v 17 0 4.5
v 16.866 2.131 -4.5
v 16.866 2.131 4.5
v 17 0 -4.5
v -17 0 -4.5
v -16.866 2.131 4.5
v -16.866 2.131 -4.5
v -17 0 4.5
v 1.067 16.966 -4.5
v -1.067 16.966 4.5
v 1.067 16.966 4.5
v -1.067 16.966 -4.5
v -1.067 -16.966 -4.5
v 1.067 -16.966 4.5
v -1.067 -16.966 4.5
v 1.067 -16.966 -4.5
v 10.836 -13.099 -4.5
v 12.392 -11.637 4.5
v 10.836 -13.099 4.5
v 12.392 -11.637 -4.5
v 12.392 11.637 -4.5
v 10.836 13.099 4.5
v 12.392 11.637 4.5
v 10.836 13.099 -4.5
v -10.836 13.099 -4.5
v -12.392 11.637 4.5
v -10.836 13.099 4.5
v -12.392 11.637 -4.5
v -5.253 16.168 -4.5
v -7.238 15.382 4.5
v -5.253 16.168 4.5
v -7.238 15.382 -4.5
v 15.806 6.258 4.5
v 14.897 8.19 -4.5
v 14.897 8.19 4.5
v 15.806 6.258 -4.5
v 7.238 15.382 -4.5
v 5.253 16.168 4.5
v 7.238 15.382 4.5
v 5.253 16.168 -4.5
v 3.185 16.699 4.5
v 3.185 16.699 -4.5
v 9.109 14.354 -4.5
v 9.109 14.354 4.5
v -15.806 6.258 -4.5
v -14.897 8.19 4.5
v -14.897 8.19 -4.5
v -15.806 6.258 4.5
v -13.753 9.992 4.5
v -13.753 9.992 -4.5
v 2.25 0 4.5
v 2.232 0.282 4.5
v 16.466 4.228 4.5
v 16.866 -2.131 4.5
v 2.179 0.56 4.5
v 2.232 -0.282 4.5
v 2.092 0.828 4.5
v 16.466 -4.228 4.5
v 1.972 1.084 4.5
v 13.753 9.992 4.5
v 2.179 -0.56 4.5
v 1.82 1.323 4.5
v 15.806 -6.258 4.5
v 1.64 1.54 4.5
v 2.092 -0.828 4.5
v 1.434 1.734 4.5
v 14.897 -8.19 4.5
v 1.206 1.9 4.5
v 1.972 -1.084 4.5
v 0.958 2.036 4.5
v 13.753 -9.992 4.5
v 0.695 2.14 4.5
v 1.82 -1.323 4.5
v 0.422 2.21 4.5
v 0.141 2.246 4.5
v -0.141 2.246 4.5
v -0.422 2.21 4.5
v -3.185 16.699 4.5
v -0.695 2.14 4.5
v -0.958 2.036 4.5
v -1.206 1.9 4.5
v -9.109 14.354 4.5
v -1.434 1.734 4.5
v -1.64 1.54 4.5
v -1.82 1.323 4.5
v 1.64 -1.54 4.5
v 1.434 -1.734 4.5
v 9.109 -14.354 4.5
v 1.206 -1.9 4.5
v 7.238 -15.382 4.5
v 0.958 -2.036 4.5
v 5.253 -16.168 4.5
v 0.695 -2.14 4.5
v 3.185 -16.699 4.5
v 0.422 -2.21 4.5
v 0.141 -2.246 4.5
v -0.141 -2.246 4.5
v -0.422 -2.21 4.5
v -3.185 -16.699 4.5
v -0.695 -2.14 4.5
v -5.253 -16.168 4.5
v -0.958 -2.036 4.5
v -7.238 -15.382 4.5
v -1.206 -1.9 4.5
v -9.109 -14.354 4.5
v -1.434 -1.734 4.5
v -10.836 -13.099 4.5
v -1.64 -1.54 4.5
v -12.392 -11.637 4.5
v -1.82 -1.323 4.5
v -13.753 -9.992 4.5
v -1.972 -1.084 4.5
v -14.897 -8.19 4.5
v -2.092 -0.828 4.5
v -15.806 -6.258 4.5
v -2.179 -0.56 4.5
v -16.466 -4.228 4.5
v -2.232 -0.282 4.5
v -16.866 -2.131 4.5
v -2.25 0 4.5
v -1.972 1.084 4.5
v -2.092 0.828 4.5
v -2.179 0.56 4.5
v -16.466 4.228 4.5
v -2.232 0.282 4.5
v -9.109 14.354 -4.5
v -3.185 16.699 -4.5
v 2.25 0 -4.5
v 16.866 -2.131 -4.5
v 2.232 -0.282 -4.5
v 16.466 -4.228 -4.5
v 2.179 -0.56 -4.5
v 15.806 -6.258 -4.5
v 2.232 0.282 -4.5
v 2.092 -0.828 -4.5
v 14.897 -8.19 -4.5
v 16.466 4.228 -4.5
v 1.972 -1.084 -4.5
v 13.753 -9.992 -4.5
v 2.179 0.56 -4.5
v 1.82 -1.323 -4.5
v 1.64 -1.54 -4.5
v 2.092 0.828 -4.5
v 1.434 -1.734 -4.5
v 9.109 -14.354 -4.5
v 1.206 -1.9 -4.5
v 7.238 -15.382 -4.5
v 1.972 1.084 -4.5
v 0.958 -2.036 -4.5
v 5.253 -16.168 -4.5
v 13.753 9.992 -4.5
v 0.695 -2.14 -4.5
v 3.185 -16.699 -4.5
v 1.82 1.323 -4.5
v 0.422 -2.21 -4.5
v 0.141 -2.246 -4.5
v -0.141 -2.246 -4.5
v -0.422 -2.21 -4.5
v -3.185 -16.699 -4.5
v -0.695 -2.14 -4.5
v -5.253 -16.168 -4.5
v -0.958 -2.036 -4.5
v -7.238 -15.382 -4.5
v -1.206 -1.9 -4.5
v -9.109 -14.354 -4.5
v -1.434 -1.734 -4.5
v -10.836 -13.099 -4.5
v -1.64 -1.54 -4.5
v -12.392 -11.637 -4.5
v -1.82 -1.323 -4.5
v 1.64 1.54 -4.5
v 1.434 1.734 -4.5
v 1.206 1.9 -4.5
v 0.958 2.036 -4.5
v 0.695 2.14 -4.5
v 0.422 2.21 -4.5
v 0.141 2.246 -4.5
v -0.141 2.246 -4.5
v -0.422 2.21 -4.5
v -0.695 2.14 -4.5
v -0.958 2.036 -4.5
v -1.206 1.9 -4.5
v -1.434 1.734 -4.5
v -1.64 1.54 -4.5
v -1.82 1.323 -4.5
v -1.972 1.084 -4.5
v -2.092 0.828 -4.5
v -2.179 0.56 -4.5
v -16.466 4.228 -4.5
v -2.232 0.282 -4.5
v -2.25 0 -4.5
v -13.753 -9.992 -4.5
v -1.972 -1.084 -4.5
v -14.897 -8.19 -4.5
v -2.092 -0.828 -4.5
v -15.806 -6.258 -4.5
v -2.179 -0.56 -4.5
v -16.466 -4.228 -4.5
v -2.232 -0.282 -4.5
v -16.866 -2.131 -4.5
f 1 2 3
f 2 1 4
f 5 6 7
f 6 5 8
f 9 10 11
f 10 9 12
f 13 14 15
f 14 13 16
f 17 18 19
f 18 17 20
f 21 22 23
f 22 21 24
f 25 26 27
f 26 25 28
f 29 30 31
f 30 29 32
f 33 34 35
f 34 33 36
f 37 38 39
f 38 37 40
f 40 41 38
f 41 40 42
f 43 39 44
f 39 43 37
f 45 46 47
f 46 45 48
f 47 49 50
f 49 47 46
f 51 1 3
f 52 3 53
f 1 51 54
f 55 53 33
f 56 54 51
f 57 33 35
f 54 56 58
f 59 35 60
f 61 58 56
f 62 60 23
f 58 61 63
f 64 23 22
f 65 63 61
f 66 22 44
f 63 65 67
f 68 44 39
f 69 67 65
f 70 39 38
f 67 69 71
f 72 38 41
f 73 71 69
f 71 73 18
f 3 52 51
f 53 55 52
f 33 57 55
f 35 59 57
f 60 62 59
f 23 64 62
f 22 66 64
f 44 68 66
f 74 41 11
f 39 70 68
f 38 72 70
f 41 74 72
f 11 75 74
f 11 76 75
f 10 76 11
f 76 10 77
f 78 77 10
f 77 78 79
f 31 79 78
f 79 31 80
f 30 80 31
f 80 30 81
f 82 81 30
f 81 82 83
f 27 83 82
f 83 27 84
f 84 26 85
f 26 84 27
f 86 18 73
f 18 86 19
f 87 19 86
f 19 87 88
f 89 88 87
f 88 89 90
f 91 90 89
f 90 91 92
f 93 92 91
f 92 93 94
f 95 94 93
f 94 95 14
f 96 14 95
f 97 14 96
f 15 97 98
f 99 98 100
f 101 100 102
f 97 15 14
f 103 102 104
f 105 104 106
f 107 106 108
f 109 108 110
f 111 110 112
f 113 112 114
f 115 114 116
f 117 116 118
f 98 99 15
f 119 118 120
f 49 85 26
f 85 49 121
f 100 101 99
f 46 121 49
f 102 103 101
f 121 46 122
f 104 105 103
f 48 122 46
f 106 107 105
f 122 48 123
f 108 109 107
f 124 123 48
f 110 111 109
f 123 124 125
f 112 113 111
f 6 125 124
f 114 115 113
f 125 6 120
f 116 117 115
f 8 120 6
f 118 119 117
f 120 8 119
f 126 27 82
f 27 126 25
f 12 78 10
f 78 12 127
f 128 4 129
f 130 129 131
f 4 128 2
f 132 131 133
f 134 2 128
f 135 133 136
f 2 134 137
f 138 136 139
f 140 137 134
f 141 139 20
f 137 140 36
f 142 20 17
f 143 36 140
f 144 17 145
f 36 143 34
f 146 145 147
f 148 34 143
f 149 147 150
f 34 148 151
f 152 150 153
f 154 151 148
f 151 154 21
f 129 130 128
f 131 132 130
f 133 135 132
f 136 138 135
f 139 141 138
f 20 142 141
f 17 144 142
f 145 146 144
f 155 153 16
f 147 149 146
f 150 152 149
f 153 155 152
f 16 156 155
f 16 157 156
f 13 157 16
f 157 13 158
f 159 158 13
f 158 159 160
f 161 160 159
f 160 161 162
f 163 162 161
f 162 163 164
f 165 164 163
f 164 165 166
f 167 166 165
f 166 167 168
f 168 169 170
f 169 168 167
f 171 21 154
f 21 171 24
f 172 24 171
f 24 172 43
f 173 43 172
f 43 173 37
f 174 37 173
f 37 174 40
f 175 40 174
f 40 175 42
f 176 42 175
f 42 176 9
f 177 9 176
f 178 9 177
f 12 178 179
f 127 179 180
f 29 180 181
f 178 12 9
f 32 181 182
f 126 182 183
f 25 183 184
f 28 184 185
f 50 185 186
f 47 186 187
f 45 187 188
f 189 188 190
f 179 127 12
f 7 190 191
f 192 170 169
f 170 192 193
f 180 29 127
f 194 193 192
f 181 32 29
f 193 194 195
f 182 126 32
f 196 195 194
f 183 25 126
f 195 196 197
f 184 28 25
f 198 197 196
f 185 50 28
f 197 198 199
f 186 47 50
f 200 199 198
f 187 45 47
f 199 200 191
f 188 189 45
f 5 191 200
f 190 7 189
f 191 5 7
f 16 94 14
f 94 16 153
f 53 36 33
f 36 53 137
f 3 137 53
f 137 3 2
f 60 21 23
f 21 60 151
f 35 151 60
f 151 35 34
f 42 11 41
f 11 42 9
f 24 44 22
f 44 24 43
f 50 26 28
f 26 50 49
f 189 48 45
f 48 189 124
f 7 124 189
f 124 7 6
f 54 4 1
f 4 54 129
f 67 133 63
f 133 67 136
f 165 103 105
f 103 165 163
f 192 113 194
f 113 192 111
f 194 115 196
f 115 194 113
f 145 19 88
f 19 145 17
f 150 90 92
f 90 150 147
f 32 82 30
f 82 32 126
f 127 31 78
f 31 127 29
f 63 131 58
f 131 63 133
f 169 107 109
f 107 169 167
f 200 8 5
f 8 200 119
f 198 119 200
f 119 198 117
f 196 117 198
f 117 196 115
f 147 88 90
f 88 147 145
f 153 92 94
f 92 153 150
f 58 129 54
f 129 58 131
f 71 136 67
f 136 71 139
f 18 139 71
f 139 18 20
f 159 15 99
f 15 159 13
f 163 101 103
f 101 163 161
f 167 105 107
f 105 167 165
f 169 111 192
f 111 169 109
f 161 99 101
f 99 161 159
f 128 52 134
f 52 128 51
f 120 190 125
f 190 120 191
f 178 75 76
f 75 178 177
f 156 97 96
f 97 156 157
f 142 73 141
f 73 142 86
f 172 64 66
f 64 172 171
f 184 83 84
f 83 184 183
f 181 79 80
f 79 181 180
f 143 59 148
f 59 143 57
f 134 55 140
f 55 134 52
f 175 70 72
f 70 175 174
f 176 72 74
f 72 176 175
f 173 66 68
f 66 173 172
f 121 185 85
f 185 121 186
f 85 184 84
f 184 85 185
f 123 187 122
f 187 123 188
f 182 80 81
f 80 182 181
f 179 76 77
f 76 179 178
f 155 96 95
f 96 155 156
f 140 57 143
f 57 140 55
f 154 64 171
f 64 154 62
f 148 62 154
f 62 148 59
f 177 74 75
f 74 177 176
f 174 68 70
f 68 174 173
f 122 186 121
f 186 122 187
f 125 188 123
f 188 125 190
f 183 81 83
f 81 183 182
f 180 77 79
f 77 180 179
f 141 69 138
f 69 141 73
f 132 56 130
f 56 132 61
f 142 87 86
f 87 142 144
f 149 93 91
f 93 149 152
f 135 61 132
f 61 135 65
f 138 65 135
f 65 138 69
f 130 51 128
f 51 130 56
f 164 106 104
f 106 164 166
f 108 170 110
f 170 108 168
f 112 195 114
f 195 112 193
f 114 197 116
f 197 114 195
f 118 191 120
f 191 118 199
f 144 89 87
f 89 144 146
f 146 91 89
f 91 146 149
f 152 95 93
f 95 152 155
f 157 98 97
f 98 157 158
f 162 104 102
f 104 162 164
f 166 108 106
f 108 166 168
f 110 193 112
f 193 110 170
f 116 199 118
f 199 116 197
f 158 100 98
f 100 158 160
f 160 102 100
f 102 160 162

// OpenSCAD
$fn = 50;


difference() {
	union() {
		translate(v = [0, 0, -4.5000000000]) {
			cylinder(h = 9, r = 17.0000000000);
		}
	}
	union() {
		translate(v = [0, 0, -100.0000000000]) {
			cylinder(h = 200, r = 2.2500000000);
		}
	}
}
